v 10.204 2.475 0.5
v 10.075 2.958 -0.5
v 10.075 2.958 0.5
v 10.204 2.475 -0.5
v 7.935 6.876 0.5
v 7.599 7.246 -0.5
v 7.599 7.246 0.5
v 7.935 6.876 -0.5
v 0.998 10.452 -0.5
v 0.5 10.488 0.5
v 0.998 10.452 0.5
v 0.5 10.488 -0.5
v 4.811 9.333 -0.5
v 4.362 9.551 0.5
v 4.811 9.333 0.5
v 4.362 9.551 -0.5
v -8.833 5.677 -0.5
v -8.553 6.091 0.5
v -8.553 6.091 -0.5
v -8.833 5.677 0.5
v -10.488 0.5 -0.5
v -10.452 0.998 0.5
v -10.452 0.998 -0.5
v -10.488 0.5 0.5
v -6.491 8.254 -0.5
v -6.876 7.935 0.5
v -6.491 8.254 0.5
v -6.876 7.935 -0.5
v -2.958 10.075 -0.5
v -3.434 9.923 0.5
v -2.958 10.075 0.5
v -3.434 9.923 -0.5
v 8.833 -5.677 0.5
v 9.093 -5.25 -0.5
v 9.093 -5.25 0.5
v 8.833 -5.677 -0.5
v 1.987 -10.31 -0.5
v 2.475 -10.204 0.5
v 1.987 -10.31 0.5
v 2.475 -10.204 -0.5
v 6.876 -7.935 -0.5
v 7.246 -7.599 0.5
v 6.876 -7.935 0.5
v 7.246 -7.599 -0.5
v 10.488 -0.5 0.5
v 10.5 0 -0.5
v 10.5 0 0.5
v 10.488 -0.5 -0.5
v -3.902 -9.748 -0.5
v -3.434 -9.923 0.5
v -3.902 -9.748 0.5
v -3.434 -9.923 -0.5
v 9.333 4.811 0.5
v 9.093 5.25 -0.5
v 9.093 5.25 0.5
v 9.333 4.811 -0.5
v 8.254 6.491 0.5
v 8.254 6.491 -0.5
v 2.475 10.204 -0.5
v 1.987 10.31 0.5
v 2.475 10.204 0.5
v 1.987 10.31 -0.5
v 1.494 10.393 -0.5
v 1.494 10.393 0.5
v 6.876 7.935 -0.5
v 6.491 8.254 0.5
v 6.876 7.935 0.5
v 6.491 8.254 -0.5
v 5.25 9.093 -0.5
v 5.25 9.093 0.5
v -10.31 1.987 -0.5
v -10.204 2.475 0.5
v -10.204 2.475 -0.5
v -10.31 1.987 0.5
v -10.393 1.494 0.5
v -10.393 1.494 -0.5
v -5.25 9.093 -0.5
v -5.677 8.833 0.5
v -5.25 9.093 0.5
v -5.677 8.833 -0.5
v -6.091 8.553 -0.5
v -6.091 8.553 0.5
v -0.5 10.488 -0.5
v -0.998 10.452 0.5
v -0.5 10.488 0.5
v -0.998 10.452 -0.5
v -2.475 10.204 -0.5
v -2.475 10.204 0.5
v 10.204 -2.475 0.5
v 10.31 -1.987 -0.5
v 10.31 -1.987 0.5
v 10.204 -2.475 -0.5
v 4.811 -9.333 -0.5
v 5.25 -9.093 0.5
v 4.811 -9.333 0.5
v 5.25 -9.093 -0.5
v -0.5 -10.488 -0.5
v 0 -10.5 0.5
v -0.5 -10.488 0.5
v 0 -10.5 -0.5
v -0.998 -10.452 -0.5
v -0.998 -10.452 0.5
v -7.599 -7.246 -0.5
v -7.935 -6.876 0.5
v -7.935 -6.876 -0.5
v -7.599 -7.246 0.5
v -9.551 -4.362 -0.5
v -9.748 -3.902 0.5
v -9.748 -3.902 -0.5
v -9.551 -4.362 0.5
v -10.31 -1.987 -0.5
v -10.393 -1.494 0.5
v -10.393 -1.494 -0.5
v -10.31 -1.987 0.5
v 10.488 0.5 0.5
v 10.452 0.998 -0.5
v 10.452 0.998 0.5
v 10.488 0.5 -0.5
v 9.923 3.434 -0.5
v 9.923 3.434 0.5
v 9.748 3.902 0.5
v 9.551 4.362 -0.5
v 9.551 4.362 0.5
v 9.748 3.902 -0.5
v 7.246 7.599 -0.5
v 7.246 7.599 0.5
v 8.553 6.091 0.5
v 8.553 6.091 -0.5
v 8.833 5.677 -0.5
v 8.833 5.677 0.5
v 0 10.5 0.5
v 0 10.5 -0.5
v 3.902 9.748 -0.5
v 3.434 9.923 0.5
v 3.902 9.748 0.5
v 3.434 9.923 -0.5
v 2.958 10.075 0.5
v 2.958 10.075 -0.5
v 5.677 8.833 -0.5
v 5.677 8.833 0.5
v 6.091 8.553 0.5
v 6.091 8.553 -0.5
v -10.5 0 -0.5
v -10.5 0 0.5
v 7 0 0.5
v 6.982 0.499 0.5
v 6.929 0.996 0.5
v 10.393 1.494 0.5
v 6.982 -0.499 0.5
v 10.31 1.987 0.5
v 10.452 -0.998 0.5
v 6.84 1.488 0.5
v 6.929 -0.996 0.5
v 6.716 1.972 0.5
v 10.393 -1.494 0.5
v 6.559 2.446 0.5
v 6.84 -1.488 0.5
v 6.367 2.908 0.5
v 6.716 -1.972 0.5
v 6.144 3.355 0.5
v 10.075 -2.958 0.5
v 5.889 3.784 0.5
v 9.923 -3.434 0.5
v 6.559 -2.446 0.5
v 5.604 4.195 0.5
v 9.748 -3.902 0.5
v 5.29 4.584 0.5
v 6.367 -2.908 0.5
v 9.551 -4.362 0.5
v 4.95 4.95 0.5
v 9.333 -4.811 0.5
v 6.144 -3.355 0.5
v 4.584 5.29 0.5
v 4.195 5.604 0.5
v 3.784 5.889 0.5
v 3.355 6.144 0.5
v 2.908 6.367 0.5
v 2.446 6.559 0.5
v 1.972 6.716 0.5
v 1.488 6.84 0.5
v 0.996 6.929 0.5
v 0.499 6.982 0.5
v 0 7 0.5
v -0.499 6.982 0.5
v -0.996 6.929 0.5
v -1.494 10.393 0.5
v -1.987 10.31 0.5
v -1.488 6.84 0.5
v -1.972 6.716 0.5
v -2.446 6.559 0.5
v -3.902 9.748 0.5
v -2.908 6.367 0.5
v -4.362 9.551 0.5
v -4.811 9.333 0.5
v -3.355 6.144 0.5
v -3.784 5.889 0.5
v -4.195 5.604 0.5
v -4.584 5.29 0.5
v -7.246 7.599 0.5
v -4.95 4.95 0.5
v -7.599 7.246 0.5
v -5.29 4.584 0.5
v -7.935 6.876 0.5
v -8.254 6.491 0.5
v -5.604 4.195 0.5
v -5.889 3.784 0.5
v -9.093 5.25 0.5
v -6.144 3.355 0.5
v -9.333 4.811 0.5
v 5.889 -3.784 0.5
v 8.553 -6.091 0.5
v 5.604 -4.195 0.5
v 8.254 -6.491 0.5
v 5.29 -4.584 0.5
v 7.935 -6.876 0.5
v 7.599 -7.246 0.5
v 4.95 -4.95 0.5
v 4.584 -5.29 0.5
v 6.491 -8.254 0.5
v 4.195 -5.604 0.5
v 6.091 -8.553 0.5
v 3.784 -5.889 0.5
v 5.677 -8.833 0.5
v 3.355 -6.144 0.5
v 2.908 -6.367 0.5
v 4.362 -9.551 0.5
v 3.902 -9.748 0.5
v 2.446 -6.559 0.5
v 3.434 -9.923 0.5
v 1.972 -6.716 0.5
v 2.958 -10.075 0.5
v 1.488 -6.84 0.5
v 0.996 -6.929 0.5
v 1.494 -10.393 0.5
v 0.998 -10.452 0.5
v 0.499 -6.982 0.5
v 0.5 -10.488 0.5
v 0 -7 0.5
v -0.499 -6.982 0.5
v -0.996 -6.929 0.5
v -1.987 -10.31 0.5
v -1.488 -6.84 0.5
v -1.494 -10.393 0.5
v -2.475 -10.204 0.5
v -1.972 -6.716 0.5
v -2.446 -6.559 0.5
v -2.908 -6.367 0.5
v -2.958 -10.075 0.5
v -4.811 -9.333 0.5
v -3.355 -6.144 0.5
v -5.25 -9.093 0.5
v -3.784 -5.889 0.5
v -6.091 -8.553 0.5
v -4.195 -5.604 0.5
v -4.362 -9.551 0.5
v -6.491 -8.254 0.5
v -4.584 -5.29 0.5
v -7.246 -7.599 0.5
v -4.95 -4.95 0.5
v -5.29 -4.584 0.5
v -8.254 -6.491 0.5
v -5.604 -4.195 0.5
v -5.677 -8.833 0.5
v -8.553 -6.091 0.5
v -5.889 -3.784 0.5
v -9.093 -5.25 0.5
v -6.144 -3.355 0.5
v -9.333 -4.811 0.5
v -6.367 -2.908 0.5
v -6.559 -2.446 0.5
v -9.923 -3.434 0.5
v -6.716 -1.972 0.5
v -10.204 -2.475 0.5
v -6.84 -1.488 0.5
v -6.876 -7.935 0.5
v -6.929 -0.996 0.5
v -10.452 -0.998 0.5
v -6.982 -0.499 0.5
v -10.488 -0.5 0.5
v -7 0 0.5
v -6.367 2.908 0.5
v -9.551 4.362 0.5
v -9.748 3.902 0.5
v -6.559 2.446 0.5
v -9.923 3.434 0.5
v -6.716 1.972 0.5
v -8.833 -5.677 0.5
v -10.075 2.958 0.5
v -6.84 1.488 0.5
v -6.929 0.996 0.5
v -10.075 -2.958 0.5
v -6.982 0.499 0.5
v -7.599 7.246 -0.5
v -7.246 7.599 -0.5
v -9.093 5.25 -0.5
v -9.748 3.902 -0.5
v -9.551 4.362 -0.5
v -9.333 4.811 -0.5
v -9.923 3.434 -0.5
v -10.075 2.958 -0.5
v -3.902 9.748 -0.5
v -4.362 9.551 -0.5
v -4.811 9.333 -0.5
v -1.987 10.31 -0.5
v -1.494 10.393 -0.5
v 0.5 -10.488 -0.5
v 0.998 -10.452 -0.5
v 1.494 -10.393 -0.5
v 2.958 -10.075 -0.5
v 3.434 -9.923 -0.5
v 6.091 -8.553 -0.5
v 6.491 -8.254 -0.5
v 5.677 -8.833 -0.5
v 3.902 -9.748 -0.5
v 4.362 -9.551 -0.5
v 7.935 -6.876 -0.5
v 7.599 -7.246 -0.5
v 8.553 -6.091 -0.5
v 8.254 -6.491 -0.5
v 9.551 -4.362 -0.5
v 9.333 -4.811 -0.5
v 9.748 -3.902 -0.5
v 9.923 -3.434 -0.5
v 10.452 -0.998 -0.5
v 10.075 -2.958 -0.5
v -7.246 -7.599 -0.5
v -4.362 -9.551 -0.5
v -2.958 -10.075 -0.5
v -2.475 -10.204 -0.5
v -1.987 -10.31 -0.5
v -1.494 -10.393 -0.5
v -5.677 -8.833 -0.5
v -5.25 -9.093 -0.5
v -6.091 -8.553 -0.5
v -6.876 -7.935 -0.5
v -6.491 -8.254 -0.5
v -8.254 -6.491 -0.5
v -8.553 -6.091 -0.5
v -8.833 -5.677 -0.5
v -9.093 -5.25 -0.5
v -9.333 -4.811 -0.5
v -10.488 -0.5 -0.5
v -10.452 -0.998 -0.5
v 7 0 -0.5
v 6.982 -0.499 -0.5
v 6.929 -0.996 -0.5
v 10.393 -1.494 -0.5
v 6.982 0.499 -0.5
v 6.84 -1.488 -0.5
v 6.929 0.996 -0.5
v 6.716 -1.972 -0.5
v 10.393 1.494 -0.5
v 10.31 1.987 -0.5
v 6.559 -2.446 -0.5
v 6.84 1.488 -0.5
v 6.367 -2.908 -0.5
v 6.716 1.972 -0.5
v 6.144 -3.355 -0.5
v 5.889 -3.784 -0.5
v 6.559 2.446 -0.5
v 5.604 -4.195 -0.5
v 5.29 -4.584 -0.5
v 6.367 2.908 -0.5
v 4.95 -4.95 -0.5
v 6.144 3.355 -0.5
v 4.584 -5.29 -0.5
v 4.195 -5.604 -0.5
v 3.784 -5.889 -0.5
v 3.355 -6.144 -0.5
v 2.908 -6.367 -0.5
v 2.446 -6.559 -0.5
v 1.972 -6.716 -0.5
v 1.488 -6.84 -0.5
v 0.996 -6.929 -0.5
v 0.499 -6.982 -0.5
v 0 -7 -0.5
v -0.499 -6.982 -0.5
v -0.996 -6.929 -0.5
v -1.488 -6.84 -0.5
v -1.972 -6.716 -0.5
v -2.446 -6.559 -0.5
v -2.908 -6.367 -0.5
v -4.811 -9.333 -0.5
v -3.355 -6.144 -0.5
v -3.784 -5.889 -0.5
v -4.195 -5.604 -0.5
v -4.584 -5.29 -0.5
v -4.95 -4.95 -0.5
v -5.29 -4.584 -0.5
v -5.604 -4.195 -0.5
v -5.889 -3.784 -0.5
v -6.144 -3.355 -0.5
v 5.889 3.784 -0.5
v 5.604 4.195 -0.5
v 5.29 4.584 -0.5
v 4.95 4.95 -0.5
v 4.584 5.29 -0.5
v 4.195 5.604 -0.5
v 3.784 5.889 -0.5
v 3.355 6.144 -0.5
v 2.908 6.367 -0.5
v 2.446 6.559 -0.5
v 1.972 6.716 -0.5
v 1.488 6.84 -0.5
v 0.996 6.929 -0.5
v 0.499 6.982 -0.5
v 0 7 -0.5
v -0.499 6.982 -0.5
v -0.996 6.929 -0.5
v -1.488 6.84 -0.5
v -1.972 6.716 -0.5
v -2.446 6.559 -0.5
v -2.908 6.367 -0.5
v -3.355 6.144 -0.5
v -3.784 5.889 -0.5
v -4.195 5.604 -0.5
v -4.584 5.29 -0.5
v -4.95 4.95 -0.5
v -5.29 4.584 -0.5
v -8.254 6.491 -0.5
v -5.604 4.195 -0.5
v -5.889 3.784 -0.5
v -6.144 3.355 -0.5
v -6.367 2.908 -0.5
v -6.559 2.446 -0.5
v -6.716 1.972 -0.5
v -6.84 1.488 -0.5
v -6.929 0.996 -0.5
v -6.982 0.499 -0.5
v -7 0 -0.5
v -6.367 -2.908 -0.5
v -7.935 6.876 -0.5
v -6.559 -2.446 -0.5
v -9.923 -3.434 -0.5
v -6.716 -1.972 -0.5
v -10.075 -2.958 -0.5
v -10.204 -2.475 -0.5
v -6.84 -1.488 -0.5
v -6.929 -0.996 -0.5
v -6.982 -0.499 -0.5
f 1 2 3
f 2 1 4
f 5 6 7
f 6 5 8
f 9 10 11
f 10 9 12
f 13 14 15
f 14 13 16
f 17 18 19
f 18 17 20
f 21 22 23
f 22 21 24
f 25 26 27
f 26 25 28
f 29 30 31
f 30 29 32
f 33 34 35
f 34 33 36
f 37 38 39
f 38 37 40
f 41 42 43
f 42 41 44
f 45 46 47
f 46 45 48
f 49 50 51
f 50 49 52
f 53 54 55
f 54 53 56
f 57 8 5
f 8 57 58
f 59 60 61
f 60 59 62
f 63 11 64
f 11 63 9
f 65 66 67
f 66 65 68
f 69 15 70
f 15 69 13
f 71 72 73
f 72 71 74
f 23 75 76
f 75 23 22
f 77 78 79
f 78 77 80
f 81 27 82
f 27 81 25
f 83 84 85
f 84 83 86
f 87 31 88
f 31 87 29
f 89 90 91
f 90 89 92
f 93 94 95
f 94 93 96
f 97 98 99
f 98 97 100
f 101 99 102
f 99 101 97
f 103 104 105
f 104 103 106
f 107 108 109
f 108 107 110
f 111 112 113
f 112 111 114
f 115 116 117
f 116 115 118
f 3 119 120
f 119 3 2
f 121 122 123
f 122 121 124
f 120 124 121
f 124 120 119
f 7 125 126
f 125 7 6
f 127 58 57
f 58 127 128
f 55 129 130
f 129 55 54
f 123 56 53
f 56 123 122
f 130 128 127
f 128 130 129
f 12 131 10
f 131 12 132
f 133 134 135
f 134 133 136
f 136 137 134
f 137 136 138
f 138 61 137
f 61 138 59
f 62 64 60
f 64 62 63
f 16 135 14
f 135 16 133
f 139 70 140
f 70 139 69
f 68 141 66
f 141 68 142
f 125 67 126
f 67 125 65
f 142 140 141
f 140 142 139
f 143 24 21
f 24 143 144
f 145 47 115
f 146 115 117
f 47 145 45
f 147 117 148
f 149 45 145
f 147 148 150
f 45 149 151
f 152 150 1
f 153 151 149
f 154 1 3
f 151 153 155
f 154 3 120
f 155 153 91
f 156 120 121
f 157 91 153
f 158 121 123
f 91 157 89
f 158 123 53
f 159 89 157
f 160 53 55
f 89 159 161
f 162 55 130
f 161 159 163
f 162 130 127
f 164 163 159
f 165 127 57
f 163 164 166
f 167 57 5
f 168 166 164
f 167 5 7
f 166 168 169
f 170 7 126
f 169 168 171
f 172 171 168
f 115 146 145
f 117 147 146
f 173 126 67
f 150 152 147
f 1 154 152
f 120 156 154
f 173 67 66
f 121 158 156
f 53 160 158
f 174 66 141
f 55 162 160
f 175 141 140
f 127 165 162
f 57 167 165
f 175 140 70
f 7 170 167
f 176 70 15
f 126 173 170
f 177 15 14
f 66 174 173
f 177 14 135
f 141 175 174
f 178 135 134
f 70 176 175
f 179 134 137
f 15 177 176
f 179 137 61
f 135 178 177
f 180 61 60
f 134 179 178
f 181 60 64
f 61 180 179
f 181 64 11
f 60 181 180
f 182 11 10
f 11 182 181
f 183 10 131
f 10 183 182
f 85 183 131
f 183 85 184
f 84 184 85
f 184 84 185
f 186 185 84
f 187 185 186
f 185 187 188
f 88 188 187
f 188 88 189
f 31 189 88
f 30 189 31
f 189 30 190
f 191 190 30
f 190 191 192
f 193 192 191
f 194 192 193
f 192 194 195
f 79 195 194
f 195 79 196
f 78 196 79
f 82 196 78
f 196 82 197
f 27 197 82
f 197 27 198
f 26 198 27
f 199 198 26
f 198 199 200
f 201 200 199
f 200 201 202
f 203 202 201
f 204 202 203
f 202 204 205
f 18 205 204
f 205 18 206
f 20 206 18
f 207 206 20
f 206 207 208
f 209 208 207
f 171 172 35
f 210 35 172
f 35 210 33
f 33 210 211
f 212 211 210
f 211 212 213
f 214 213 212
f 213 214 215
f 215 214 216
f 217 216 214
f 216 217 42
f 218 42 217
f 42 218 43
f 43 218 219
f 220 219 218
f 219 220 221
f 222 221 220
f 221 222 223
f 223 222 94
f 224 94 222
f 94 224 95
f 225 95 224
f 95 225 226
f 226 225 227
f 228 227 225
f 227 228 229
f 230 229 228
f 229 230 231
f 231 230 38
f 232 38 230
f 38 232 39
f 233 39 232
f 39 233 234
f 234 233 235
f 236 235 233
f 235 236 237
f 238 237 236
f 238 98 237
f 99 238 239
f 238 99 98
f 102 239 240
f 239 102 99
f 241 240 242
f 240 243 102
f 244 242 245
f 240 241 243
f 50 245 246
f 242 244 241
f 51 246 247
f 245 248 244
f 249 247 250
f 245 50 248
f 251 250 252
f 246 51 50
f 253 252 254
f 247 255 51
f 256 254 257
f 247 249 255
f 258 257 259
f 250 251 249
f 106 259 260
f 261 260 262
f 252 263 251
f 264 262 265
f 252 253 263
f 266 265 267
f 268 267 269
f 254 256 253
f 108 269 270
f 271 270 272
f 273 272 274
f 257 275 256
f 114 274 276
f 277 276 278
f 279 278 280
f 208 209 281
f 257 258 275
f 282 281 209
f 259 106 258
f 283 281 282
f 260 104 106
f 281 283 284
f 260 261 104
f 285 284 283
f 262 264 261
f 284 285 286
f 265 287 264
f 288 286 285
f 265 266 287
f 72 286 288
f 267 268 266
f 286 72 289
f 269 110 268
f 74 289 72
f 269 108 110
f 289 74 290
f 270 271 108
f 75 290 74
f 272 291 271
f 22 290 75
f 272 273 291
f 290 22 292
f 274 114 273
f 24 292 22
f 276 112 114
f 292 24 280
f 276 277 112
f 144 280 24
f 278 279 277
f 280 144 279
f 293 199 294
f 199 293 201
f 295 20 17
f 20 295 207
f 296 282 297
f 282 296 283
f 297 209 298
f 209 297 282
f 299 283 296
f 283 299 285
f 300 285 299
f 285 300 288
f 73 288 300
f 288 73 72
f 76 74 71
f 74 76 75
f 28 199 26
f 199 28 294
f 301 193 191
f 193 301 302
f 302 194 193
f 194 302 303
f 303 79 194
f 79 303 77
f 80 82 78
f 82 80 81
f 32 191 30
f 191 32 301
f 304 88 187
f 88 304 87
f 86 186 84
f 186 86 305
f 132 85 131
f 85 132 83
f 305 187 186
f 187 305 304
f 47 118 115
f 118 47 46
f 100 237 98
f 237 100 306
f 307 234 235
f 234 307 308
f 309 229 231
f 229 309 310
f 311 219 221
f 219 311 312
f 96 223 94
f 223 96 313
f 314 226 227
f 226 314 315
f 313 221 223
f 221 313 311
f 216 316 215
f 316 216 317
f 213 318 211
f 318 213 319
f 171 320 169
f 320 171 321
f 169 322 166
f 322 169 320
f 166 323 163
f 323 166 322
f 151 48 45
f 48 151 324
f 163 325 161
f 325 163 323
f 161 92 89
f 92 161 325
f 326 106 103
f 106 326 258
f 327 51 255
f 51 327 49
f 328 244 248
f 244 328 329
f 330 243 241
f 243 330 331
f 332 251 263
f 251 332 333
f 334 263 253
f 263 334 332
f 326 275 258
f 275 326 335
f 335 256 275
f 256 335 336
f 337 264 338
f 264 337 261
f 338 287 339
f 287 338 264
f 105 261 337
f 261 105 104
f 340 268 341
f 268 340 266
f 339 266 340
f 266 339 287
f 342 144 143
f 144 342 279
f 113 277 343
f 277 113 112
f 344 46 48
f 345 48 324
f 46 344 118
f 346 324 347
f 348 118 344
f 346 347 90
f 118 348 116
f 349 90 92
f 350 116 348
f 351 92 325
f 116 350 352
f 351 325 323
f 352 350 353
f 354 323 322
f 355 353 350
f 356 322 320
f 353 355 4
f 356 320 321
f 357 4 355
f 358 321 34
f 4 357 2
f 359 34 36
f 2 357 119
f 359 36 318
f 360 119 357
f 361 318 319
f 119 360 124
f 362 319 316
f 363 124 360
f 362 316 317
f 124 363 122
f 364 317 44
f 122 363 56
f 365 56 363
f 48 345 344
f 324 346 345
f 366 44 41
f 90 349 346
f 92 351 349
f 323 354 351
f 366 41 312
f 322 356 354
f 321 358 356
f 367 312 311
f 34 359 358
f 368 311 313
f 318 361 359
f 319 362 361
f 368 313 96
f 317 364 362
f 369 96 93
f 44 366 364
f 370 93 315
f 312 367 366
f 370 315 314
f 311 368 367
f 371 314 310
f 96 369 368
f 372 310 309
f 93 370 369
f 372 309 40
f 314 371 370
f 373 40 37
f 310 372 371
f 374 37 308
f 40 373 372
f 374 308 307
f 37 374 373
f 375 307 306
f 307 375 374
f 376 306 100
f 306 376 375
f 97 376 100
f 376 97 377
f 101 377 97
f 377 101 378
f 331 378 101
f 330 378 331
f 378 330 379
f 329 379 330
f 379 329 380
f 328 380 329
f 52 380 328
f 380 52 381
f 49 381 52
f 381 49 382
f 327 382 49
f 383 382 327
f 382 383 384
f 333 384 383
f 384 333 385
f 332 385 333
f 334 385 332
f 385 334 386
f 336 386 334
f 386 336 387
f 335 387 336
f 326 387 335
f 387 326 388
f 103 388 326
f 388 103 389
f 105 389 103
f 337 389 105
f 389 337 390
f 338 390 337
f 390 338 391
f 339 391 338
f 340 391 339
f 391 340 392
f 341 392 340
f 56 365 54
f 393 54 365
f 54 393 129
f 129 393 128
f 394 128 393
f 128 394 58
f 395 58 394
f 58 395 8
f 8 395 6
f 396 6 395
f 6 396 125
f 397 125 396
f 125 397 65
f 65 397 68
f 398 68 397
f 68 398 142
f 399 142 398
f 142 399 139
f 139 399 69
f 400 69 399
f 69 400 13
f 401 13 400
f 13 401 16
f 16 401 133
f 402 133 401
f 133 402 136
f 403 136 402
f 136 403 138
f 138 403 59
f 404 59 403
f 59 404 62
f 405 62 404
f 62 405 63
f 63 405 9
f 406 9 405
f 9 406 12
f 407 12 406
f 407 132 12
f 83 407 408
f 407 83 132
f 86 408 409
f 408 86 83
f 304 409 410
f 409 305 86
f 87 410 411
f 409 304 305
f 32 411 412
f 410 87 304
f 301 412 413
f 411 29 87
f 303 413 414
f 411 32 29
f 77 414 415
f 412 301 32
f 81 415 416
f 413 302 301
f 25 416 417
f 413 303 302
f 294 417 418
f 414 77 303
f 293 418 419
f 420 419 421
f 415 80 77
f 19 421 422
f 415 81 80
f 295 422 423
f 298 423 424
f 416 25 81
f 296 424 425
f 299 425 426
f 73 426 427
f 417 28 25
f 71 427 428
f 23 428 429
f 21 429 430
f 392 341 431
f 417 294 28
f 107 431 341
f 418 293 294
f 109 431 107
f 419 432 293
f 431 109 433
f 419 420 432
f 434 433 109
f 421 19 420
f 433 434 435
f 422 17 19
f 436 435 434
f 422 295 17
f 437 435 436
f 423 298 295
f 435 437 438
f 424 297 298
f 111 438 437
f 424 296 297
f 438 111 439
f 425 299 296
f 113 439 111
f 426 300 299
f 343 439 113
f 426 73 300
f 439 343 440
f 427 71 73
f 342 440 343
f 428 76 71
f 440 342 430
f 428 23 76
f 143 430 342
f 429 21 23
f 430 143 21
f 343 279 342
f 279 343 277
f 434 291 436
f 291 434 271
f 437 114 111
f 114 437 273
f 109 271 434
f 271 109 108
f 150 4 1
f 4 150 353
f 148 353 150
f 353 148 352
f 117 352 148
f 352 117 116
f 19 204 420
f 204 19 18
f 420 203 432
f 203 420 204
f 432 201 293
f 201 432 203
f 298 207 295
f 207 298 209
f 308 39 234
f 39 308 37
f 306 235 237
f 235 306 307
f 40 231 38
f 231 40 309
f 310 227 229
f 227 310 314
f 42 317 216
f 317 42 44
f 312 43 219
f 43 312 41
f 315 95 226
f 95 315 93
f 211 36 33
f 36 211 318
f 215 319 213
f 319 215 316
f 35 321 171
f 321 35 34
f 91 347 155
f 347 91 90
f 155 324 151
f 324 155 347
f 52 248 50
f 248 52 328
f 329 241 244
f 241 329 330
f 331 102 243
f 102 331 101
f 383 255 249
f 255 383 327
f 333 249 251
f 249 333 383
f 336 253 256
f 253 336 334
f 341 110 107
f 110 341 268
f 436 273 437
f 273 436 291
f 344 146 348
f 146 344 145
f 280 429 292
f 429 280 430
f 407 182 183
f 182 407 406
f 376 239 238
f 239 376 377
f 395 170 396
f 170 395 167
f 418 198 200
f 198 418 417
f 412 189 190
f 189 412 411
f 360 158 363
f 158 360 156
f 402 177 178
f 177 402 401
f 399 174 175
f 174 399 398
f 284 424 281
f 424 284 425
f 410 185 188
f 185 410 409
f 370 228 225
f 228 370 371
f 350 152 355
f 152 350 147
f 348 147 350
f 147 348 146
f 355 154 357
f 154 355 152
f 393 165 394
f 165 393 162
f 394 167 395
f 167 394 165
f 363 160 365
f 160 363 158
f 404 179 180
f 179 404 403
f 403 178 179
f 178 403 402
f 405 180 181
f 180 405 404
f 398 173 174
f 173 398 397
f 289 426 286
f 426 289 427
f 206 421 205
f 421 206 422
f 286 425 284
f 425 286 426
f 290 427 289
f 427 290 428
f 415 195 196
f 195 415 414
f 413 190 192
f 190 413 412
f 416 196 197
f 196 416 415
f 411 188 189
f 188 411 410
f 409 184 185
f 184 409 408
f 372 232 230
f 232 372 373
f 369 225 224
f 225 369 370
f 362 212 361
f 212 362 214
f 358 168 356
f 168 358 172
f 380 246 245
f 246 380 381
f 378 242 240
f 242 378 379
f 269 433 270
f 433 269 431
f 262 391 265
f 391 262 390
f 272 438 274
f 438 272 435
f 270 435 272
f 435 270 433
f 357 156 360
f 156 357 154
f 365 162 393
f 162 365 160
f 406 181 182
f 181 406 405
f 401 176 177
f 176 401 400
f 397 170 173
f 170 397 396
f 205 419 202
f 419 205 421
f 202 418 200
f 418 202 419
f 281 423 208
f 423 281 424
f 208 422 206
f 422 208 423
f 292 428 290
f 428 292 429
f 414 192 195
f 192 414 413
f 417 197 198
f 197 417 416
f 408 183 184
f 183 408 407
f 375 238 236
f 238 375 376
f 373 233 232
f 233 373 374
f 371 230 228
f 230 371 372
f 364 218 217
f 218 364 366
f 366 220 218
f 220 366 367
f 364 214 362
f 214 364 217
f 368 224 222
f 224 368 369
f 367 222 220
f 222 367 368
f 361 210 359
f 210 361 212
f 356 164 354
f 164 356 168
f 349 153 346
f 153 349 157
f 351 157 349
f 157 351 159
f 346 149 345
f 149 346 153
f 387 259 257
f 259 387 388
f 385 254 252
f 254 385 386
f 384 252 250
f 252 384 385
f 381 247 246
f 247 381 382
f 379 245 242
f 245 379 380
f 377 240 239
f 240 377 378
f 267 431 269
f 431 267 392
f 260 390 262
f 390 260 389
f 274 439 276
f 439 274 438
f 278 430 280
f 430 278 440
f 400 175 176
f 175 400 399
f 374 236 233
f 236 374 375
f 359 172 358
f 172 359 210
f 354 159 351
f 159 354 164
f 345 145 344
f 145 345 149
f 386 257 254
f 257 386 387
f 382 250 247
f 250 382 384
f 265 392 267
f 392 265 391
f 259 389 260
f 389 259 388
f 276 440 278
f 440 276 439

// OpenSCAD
// washer dimentions
od = 21;
id = 14;
h = 1;

$fa=.5;
$fs = .5;

difference(){
    cylinder(r=od/2,h=h,center=true);
	cylinder(r=id/2,h=h+1,center=true);
}
